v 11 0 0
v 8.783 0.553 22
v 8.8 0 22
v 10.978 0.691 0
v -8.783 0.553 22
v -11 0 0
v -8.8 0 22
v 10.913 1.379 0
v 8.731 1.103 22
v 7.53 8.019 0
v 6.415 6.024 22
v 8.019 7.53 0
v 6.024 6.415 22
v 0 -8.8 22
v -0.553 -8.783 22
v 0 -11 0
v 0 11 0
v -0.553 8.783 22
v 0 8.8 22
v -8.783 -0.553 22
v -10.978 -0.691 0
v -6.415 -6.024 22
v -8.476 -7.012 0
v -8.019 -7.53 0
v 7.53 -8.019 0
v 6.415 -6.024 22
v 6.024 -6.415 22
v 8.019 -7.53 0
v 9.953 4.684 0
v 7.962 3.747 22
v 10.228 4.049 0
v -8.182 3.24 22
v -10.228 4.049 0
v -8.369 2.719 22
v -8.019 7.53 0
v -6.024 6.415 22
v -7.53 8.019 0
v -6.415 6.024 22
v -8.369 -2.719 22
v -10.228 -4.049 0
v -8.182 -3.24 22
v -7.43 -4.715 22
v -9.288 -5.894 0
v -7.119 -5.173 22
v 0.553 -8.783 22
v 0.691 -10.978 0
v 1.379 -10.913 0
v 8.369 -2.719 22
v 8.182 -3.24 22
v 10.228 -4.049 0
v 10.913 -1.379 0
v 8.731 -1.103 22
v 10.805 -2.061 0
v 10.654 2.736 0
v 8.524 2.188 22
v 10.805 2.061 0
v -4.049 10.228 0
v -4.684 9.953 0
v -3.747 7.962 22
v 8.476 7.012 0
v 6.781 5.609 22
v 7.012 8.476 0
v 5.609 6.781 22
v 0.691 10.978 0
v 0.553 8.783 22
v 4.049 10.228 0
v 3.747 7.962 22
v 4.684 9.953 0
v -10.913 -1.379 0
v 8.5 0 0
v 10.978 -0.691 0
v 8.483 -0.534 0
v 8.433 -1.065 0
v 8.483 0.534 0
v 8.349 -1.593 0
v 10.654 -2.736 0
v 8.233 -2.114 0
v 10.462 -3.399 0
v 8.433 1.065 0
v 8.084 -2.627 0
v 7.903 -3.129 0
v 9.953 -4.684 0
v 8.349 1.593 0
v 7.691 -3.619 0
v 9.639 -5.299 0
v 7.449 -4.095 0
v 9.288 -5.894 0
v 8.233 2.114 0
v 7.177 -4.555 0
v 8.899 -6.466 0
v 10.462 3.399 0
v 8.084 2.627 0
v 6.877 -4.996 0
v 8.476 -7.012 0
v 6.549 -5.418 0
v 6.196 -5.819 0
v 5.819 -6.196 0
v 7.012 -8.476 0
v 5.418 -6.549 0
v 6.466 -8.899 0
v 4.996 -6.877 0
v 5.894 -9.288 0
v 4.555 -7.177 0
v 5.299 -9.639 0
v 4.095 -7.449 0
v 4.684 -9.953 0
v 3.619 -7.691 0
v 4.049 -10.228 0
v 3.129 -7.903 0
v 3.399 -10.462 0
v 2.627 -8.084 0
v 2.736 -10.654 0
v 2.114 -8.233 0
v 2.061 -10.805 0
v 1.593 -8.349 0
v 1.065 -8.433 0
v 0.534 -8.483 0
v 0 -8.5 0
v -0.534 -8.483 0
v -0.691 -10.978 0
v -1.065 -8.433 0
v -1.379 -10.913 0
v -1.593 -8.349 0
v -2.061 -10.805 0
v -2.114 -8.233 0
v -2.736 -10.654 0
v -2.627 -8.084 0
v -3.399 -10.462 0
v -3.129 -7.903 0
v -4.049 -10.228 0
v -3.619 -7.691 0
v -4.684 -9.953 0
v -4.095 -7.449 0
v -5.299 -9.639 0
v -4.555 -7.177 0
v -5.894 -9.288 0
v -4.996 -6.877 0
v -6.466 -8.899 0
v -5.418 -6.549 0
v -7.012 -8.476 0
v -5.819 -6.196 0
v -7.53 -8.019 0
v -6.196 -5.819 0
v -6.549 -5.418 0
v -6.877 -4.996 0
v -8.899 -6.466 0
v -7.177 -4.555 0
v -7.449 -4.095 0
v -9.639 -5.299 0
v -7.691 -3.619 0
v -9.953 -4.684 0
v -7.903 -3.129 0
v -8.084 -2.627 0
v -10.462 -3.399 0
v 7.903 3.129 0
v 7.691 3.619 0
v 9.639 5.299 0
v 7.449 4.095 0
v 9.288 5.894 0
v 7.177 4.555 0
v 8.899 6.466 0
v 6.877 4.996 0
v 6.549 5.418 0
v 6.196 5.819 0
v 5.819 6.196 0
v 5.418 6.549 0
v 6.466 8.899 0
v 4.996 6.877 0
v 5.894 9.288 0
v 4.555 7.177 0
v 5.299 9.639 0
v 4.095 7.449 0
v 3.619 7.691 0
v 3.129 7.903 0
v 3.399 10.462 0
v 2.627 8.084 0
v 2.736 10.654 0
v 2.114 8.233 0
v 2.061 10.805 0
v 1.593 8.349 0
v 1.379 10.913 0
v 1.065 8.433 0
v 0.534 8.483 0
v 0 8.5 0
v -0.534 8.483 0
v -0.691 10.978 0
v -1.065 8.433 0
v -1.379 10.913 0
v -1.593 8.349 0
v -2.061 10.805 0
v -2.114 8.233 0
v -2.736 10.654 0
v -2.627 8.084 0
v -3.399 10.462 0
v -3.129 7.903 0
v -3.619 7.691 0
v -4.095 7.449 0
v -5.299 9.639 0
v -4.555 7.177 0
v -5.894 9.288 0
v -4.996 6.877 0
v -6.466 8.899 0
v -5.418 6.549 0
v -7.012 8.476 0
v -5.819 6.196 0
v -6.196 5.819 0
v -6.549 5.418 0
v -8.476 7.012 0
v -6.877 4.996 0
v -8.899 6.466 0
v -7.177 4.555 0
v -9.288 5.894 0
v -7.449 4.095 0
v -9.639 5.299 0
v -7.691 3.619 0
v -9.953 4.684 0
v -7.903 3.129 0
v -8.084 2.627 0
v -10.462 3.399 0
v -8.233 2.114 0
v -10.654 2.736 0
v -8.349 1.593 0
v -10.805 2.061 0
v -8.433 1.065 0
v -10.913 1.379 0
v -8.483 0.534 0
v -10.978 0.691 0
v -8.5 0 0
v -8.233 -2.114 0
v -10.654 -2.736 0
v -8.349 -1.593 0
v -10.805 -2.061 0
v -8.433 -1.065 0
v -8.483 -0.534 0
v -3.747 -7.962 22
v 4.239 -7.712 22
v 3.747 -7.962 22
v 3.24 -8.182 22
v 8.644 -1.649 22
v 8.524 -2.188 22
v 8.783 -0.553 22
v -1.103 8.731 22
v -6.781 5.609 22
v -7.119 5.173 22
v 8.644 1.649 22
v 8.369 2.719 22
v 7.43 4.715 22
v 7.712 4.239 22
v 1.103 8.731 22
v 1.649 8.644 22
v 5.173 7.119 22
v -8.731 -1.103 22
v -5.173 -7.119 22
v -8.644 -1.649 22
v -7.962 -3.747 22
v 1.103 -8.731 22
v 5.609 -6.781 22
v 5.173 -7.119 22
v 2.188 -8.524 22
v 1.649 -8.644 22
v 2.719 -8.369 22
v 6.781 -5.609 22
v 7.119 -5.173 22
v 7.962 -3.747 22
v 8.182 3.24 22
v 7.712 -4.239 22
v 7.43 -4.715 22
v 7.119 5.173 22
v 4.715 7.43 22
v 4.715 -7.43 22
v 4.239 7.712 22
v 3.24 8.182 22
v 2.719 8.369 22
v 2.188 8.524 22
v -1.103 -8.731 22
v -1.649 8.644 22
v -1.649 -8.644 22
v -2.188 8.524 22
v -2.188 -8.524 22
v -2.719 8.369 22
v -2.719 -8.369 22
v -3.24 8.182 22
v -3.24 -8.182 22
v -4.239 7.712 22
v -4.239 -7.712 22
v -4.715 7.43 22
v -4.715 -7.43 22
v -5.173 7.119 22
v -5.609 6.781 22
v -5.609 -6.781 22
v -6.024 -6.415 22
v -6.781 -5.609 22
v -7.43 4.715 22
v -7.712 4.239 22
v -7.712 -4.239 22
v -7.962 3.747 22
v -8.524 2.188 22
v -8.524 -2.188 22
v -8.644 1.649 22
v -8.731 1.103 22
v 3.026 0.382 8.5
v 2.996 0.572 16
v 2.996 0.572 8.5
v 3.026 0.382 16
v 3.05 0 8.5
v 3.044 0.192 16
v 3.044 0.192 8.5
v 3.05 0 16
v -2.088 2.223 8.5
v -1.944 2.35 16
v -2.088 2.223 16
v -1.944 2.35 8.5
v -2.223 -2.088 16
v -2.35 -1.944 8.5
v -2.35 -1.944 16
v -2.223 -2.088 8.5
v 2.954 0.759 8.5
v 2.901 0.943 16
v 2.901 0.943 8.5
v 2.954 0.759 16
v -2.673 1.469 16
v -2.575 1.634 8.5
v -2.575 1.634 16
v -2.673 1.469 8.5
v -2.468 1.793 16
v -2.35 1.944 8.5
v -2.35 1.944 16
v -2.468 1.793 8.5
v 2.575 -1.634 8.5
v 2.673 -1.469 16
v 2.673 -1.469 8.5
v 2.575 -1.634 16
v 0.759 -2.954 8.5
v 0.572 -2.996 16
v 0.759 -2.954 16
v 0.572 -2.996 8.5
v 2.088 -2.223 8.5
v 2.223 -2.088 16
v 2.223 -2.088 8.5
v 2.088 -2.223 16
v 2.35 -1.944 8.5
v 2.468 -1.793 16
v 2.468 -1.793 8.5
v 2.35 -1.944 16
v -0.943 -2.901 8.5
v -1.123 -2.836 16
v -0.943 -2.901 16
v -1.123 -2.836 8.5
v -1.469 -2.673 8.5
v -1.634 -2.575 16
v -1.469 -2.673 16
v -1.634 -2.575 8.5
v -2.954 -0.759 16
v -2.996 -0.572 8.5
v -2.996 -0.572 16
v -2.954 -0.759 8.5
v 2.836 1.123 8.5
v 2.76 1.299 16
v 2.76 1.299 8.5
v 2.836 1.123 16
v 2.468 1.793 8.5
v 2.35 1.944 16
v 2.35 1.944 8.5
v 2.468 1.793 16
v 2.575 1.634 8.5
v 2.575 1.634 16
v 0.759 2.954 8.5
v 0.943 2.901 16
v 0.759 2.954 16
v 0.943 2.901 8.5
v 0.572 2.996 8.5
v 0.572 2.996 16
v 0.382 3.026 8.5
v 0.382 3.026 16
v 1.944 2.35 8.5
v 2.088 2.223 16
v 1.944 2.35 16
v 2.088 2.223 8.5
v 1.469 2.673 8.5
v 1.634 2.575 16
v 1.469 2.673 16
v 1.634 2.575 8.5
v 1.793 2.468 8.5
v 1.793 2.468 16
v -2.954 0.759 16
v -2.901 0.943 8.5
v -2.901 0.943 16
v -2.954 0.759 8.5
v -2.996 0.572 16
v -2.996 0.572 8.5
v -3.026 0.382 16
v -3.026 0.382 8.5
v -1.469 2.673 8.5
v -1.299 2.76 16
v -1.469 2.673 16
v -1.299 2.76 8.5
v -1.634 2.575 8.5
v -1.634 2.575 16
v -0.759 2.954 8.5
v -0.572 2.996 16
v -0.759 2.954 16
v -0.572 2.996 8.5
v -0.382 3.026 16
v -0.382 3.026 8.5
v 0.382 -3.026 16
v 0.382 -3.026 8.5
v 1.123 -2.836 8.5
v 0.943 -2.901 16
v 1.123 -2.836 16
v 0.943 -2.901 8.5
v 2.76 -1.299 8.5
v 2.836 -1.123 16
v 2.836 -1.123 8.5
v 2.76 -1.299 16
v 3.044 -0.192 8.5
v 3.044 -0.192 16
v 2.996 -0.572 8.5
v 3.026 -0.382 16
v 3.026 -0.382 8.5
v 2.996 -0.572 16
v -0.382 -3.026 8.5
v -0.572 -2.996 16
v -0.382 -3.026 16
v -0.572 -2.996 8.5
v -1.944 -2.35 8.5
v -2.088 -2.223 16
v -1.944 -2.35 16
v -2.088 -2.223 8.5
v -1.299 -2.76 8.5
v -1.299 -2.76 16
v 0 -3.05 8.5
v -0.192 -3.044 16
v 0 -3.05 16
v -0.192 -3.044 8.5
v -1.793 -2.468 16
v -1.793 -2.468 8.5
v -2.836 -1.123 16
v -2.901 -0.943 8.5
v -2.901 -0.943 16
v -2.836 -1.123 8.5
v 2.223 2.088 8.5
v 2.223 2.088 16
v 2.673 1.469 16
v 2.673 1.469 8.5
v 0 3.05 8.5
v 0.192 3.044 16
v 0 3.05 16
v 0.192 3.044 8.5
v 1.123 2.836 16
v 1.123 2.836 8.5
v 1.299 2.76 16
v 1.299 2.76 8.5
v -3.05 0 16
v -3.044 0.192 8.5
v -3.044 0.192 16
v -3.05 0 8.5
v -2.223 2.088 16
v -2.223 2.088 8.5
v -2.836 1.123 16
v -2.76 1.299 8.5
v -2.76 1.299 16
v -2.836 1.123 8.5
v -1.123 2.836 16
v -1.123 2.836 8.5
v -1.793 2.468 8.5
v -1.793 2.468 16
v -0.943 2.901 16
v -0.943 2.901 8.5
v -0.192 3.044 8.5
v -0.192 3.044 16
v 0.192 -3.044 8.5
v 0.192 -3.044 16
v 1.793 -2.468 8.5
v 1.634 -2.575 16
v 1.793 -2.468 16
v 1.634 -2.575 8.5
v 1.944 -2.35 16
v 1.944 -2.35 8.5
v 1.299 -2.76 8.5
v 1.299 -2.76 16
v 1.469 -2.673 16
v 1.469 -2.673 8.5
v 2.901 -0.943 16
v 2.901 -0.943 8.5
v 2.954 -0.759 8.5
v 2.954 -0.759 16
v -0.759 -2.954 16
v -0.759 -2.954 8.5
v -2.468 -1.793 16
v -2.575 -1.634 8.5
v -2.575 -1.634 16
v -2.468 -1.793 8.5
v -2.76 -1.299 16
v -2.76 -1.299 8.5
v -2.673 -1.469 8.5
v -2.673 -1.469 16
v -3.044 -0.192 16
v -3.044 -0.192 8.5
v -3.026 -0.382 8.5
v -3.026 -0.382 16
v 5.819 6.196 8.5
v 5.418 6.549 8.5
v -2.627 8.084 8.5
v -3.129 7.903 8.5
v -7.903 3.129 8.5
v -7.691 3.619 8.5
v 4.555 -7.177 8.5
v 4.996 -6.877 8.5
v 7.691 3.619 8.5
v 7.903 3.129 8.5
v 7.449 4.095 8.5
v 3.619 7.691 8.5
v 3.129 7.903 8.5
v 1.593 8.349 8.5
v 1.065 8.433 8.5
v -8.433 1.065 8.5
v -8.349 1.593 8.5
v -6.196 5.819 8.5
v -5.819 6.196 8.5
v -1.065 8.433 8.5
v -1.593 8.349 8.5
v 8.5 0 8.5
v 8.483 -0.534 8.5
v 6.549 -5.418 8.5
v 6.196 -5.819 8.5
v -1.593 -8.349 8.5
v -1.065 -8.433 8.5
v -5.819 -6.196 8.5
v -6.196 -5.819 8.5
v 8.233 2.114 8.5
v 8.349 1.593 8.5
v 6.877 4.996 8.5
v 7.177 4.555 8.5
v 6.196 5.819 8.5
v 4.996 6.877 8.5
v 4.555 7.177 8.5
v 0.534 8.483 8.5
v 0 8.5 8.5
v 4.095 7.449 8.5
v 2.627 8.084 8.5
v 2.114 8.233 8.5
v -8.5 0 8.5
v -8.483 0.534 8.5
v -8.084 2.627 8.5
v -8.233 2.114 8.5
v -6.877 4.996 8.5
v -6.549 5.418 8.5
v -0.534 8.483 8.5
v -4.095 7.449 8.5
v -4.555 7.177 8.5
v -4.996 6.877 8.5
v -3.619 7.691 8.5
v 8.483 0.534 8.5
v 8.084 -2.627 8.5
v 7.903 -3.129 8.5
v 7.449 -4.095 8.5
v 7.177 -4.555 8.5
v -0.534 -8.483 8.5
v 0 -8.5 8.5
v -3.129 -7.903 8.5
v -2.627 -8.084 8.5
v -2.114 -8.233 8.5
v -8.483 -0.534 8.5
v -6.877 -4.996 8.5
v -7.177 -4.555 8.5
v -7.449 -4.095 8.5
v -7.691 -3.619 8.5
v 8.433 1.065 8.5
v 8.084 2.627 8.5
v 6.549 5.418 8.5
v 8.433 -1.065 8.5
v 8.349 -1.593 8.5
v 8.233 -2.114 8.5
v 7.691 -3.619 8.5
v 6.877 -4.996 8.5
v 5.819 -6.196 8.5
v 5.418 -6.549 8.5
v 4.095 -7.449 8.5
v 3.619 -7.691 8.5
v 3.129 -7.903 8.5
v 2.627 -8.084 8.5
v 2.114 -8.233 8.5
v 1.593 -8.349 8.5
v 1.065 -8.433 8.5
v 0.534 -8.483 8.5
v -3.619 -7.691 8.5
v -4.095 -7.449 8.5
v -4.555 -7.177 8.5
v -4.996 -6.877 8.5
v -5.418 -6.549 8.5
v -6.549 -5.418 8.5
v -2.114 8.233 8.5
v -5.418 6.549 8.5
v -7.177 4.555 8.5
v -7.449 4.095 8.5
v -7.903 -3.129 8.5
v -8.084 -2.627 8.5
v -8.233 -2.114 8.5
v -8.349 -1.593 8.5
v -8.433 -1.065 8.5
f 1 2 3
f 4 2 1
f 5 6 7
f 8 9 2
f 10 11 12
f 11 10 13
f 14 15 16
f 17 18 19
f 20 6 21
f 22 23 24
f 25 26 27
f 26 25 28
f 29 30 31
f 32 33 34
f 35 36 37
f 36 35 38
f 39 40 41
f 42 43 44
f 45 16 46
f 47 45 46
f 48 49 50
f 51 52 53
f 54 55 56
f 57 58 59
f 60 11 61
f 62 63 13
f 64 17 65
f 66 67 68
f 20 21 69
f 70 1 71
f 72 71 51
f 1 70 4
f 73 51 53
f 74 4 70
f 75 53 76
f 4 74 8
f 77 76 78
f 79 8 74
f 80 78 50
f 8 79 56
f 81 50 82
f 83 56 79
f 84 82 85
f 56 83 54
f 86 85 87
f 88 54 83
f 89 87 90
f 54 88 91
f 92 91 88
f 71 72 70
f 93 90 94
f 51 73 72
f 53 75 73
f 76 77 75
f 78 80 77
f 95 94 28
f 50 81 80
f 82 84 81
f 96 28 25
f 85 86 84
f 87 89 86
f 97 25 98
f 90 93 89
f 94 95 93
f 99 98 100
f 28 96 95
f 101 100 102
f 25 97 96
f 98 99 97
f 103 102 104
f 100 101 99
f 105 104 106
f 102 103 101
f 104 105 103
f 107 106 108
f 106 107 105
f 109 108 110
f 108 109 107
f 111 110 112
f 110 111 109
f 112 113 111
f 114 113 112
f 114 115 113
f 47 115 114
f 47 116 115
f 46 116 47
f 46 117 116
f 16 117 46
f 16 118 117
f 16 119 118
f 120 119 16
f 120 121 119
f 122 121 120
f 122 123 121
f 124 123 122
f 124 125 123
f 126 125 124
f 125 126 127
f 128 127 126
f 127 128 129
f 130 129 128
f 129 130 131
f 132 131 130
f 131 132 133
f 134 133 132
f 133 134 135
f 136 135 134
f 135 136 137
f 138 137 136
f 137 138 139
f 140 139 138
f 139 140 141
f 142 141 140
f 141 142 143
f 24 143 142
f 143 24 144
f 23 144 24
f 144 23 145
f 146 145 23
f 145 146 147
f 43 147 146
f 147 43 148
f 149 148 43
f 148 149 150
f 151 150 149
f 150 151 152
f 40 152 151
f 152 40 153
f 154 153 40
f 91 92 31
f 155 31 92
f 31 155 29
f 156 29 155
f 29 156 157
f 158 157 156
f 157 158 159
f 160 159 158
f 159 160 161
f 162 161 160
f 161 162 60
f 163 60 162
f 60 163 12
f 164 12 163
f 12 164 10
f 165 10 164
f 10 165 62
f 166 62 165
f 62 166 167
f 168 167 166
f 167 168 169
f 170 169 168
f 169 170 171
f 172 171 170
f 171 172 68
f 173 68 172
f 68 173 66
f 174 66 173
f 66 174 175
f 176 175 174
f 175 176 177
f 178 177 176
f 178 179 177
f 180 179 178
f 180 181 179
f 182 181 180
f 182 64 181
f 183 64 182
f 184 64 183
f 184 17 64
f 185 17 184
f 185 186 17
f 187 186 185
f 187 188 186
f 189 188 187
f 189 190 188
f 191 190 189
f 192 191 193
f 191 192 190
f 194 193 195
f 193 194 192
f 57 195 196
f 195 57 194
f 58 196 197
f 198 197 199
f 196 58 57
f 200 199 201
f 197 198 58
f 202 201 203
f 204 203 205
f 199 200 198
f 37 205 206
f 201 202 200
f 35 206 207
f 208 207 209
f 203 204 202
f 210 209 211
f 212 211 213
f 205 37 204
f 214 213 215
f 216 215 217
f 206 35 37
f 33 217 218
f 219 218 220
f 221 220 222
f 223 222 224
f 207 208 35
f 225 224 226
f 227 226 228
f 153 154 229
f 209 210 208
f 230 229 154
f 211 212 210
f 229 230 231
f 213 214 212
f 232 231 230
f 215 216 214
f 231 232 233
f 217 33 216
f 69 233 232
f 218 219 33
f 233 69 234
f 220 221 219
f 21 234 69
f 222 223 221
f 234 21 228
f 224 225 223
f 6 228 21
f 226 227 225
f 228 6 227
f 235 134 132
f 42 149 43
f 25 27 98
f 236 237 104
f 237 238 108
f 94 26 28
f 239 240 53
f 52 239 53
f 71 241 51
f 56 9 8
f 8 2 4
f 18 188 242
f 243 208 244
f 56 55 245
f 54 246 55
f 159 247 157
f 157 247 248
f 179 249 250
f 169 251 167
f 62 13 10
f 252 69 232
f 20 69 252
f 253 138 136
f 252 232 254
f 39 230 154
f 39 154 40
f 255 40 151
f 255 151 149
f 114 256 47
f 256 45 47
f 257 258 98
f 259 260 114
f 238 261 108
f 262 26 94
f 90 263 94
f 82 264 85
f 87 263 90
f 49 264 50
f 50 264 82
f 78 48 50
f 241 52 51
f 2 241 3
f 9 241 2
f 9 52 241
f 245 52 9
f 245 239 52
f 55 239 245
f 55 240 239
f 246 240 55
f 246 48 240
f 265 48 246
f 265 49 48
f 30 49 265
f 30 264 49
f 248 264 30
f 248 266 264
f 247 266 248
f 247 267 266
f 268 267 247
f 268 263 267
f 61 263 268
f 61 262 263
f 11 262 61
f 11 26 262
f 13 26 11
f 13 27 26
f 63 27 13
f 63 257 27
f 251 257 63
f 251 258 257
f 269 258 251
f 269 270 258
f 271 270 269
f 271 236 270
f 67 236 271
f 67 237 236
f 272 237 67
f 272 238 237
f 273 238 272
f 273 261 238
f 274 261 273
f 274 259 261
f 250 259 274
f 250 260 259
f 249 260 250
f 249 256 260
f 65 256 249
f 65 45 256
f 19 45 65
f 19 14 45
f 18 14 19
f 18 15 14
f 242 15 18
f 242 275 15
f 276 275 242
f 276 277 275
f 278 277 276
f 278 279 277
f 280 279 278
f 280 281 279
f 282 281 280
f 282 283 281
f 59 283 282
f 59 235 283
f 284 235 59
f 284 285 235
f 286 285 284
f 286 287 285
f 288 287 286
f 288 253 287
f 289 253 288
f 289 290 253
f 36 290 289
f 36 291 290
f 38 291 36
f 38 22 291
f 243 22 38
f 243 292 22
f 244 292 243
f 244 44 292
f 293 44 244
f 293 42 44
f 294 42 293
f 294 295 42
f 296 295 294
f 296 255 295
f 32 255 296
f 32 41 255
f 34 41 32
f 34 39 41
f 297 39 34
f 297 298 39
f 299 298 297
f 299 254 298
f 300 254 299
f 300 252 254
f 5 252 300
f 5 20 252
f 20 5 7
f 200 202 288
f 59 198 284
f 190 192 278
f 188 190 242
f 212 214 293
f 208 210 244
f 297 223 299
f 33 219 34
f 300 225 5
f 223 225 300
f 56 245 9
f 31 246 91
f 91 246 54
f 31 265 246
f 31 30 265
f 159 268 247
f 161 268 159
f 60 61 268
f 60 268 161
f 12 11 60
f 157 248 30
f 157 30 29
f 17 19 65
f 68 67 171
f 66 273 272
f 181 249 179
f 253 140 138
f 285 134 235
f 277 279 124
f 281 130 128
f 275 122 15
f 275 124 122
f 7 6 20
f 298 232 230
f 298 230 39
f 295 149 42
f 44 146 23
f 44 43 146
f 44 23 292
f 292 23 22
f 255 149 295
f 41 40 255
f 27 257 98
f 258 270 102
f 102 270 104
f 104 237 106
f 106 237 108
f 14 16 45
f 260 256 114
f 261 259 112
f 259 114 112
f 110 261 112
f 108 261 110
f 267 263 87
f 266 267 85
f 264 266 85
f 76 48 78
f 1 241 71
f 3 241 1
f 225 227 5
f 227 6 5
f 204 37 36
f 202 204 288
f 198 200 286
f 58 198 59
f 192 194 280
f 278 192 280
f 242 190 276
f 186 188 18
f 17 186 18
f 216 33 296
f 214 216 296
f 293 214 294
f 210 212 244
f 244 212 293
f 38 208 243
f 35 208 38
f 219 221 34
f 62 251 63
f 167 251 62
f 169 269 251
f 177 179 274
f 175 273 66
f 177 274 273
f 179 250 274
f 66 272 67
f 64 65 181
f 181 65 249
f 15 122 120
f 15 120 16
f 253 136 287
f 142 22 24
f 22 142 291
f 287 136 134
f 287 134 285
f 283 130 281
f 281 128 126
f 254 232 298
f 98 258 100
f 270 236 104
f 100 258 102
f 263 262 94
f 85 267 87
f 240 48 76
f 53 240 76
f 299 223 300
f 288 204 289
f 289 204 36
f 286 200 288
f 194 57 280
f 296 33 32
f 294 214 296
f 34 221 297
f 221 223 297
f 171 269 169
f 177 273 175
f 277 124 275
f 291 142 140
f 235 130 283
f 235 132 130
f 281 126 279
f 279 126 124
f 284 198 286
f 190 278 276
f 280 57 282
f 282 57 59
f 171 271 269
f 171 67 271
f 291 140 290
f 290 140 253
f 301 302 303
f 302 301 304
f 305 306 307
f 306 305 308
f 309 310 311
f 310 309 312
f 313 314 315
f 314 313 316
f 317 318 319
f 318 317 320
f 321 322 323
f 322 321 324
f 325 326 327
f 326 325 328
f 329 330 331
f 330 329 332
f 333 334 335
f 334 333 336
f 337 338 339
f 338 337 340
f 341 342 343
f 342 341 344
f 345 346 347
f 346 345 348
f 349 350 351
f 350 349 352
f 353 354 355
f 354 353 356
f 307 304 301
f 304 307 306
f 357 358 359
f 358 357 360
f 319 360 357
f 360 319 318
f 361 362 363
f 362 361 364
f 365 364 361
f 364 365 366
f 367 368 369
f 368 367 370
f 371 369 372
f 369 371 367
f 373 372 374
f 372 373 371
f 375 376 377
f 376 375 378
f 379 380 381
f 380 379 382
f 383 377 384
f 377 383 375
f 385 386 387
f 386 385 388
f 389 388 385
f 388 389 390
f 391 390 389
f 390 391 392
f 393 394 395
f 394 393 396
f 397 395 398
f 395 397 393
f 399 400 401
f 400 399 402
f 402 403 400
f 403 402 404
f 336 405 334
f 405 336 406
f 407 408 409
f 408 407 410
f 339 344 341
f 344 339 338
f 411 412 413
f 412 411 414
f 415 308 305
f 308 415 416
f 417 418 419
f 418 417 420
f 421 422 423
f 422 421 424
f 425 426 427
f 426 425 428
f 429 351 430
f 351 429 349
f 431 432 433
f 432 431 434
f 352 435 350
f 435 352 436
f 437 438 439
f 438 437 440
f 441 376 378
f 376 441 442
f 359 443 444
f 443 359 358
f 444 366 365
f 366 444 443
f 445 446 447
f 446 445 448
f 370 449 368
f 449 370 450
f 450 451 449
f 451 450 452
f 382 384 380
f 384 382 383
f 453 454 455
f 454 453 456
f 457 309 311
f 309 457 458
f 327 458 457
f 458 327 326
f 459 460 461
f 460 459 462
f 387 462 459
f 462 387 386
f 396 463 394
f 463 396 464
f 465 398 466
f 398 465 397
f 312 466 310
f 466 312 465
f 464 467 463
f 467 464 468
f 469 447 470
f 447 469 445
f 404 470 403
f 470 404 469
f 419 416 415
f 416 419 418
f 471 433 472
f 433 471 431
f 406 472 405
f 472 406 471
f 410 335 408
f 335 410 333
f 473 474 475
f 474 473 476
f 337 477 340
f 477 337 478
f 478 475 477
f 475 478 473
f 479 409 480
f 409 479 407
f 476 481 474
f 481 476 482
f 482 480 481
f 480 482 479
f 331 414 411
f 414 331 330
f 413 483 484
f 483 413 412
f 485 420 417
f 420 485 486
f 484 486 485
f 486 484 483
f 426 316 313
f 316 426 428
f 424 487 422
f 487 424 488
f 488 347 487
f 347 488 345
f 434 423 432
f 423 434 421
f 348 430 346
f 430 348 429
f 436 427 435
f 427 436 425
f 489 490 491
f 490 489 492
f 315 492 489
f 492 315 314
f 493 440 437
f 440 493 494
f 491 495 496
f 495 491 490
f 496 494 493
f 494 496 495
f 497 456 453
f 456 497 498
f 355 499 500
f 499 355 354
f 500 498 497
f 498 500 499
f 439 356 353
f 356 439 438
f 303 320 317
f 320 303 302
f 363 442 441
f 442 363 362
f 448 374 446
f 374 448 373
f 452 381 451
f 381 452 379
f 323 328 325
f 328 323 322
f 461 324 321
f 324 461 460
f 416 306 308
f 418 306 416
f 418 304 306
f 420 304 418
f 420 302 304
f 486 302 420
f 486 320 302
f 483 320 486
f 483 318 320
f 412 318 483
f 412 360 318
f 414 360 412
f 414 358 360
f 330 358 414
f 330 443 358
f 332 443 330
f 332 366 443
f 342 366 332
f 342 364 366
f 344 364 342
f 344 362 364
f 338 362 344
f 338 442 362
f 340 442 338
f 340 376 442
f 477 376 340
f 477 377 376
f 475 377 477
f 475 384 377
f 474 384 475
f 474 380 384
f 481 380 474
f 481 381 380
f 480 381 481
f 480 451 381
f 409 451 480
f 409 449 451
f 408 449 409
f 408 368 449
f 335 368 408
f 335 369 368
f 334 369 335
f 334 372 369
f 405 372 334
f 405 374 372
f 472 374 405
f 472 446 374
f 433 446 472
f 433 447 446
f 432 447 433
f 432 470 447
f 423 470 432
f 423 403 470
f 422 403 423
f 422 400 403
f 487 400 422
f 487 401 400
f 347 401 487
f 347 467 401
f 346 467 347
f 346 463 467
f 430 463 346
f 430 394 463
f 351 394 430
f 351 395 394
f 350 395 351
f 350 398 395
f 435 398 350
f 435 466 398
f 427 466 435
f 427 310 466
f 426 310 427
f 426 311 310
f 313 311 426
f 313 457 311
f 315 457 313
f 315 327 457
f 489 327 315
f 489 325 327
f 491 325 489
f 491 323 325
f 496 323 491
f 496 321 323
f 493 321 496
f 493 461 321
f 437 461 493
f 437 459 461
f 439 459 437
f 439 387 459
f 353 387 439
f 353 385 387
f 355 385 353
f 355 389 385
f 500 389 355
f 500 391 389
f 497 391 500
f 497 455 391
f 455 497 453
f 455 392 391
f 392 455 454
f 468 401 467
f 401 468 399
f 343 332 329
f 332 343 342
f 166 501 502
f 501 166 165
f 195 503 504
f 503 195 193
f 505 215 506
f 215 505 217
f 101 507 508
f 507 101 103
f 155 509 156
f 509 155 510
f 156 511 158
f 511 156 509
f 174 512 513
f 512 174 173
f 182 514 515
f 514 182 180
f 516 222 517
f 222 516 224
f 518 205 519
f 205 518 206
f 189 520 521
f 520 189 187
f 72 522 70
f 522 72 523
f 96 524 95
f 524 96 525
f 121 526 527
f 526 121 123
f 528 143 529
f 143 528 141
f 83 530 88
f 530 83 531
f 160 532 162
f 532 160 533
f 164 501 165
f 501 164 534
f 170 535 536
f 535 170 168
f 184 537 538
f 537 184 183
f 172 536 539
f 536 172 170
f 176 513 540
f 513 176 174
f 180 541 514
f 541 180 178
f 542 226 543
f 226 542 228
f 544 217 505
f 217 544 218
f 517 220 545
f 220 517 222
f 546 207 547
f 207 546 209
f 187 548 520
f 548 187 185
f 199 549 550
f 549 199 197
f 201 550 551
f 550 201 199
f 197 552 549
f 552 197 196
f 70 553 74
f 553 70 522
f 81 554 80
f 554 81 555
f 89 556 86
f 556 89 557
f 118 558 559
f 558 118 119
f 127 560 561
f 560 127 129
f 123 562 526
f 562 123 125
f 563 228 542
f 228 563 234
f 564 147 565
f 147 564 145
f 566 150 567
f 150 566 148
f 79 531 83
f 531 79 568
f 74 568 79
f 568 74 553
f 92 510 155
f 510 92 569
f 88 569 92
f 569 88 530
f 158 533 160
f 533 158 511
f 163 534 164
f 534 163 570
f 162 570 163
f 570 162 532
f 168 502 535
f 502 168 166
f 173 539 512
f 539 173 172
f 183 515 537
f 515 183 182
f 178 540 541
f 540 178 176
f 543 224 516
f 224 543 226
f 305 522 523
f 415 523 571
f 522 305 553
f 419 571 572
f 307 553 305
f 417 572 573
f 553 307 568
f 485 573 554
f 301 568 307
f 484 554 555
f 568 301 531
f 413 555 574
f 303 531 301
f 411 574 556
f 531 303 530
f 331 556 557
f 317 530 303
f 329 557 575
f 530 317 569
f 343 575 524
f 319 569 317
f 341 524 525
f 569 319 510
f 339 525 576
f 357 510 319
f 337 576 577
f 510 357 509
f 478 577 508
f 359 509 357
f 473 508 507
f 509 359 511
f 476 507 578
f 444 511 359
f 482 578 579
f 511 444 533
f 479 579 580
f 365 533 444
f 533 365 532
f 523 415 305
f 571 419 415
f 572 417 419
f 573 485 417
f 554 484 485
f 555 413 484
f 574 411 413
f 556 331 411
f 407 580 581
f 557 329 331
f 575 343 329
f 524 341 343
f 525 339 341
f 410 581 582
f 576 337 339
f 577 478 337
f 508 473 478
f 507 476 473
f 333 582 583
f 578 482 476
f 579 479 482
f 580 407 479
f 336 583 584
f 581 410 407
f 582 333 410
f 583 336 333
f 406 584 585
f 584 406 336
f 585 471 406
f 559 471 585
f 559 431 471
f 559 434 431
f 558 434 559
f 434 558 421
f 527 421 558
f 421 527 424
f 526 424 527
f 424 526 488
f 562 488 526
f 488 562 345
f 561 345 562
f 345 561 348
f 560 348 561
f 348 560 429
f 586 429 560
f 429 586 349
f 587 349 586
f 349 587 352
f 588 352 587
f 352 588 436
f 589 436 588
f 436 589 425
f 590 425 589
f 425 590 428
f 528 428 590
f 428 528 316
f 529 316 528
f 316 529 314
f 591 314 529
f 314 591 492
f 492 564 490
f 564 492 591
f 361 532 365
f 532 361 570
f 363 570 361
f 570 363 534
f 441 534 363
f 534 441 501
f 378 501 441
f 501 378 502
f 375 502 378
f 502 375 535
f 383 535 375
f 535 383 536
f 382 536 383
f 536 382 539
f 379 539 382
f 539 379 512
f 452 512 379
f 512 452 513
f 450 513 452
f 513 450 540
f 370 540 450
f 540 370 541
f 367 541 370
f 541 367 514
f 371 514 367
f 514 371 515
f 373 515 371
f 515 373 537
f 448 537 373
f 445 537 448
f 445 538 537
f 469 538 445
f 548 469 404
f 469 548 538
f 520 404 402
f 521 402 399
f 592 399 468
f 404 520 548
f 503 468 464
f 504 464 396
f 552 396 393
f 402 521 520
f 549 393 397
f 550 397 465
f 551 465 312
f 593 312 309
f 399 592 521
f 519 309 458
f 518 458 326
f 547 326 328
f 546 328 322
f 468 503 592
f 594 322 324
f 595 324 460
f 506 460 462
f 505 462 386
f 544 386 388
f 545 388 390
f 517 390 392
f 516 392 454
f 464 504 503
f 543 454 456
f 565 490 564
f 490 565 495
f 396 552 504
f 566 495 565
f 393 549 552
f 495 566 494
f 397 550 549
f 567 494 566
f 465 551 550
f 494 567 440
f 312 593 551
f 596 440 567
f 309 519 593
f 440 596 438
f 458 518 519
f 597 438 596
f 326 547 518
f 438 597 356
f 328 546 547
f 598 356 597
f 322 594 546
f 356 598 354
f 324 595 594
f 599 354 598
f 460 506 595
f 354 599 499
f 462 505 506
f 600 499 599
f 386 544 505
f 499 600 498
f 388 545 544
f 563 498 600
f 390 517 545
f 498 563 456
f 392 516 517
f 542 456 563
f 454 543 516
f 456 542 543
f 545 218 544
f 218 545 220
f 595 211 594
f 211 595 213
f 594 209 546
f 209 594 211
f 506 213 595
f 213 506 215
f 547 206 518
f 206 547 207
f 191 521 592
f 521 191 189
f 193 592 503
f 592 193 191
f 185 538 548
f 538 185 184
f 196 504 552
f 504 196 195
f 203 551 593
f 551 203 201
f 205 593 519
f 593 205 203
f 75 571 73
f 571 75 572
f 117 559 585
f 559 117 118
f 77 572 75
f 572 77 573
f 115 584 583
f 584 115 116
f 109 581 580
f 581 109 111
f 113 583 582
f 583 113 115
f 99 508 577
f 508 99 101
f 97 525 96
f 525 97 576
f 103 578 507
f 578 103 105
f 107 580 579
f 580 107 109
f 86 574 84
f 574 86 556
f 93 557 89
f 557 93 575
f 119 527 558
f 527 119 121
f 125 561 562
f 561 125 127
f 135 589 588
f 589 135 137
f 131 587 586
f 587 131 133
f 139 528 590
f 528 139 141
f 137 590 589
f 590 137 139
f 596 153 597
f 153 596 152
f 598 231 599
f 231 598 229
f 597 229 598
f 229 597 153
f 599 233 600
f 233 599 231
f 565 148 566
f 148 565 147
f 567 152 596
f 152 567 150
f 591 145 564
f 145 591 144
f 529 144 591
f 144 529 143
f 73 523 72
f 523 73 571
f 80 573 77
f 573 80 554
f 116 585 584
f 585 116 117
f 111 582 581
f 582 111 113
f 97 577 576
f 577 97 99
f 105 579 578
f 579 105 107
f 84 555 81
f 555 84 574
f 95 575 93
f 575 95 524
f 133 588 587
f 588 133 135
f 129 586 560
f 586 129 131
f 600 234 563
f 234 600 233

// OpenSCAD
$fn = 100;
diametro_foro = 6.10;
altezza_foro = 16;

diametro_manopola = 22;
altezza_manopola = 22;

diametro_smusso = 17;
altezza_smusso = 8.5;

difference(){
difference(){
    cylinder(altezza_manopola,diametro_manopola/2,diametro_manopola/2.5);
    cylinder(altezza_foro,diametro_foro/2,diametro_foro/2);
}

    cylinder(altezza_smusso,diametro_smusso/2,diametro_smusso/2);
}
